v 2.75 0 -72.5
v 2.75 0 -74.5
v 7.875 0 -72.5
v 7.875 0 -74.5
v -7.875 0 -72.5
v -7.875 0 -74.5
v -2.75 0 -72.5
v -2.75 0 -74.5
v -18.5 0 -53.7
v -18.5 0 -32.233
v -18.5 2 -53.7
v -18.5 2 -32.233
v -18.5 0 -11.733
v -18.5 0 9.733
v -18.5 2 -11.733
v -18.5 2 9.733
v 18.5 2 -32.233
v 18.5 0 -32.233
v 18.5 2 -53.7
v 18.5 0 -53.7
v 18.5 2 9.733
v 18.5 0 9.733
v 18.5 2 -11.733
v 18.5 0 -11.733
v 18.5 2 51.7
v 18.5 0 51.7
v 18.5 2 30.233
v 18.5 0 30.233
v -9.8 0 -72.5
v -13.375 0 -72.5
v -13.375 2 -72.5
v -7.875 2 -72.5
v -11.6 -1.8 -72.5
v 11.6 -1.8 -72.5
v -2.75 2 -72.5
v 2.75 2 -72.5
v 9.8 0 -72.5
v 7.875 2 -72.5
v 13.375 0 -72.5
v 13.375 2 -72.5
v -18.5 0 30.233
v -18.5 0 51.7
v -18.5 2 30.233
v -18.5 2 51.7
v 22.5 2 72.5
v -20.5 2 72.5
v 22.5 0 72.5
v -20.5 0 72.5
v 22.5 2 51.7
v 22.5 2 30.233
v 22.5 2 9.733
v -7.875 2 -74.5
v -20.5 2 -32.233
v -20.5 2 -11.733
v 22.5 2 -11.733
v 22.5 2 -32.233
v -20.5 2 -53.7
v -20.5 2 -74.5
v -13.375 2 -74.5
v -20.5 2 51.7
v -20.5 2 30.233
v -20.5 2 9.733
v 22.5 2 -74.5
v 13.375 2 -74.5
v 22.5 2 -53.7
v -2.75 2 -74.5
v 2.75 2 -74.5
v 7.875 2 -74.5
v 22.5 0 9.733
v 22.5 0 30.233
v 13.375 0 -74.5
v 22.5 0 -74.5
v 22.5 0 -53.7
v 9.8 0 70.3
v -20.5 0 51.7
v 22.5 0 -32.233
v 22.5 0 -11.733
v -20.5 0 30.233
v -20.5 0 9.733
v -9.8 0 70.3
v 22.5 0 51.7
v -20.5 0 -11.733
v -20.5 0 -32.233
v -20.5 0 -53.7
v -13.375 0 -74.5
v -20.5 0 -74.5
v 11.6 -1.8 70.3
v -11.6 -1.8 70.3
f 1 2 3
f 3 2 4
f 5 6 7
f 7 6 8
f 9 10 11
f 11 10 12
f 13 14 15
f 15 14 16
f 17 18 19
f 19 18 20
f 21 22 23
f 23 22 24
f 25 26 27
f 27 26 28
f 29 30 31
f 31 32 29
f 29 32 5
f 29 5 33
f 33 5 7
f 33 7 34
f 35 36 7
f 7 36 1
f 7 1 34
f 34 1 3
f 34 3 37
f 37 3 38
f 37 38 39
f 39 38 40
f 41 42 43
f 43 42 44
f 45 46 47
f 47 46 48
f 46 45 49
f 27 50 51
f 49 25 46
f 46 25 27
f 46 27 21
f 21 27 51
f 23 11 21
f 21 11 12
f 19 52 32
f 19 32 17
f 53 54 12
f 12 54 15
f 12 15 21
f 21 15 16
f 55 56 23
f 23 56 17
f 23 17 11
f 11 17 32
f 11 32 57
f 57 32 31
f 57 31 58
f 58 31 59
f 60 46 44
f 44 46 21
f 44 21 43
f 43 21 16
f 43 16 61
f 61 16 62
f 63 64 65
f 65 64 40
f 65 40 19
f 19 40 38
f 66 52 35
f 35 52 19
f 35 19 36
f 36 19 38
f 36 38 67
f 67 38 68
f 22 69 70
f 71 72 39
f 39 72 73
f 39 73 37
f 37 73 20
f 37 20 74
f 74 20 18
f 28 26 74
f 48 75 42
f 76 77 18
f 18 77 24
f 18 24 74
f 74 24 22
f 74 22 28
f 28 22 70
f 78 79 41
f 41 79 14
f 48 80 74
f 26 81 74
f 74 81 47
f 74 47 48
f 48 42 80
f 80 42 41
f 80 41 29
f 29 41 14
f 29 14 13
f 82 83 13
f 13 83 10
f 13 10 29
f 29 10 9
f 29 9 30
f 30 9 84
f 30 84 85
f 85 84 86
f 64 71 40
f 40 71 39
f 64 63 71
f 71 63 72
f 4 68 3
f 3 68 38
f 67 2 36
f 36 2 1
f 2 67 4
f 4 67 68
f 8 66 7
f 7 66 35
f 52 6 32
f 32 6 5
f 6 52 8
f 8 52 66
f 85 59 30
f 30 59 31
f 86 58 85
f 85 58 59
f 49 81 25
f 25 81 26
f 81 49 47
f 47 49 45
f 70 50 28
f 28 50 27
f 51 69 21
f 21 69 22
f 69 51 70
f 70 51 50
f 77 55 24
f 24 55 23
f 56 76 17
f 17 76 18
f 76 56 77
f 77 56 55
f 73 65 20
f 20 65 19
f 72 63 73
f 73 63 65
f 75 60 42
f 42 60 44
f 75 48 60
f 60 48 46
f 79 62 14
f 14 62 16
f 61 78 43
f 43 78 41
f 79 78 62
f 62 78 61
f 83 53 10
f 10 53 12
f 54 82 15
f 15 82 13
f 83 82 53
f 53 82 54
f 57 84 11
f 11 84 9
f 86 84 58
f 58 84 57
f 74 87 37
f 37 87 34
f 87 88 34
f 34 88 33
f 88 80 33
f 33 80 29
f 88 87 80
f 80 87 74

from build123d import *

# Parameters (mm, degrees)
SKETCH_4_W      = 37
SKETCH_4_H      = 145
EXTRUDE_1_DEPTH = 2
SKETCH_5_W      = 5.125
SKETCH_5_H      = 2
EXTRUDE_2_DEPTH = 2
SKETCH_7_W      = 20.8
SKETCH_7_H      = 2
SKETCH_7_W_2    = 20.5
EXTRUDE_3_DEPTH = 4
EXTRUDE_START   = -37
SKETCH_7_2_W    = 20.8
SKETCH_7_2_H    = 2
SKETCH_7_2_W_2  = 20.5
EXTRUDE_4_DEPTH = 2
EXTRUDE_START_2 = -2.2
EXTRUDE_5_DEPTH = 142.8


with BuildPart() as part:
    # 草图4 → 凸台-拉伸1 (new body)
    with BuildSketch(Plane(origin=(0, 0, 0), x_dir=(1, 0, 0), z_dir=(0, 1, 0))):
        Rectangle(SKETCH_4_W, SKETCH_4_H)
    extrude(amount=EXTRUDE_1_DEPTH)

    # 草图5 → 凸台-拉伸2 (add)
    with BuildSketch(Plane(origin=(0, 0, -72.5), x_dir=(-1, 0, 0), z_dir=(0, 0, -1))):
        with Locations((-15.9375, 1)):
            Rectangle(SKETCH_5_W, SKETCH_5_H)
        with Locations((-5.3125, 1)):
            Rectangle(SKETCH_5_W, SKETCH_5_H)
        with Locations((5.3125, 1)):
            Rectangle(SKETCH_5_W, SKETCH_5_H)
        with Locations((15.9375, 1)):
            Rectangle(SKETCH_5_W, SKETCH_5_H)
    extrude(amount=EXTRUDE_2_DEPTH)

    # 草图7 → 凸台-拉伸3 (add)
    with BuildSketch(Plane(origin=(18.5, 0, 0), x_dir=(0, 0, -1), z_dir=(1, 0, 0))):
        with Locations((-62.1, 1)):
            Rectangle(SKETCH_7_W, SKETCH_7_H)
        with Locations((-19.983333333, 1)):
            Rectangle(SKETCH_7_W_2, SKETCH_7_H)
        with Locations((21.983333333, 1)):
            Rectangle(SKETCH_7_W_2, SKETCH_7_H)
        with Locations((64.1, 1)):
            Rectangle(SKETCH_7_W, SKETCH_7_H)
    extrude(amount=EXTRUDE_3_DEPTH)

    # 草图7<2> → 凸台-拉伸4 (add)
    with BuildSketch(Plane(origin=(18.5, 0, 0), x_dir=(0, 0, -1), z_dir=(1, 0, 0)).offset(EXTRUDE_START)):
        with Locations((-62.1, 1)):
            Rectangle(SKETCH_7_2_W, SKETCH_7_2_H)
        with Locations((-19.983333333, 1)):
            Rectangle(SKETCH_7_2_W_2, SKETCH_7_2_H)
        with Locations((21.983333333, 1)):
            Rectangle(SKETCH_7_2_W_2, SKETCH_7_2_H)
        with Locations((64.1, 1)):
            Rectangle(SKETCH_7_2_W, SKETCH_7_2_H)
    extrude(amount=-EXTRUDE_4_DEPTH)

    # 草图9 → 凸台-拉伸5 (add)
    with BuildSketch(Plane.XY.offset(72.5).offset(EXTRUDE_START_2)):
        Polygon((-9.8, 0), (-11.6, -1.8), (-9.8, -1.8), (9.8, -1.8), (11.6, -1.8), (9.8, 0), align=None)
    extrude(amount=-EXTRUDE_5_DEPTH)


solid = part.part
